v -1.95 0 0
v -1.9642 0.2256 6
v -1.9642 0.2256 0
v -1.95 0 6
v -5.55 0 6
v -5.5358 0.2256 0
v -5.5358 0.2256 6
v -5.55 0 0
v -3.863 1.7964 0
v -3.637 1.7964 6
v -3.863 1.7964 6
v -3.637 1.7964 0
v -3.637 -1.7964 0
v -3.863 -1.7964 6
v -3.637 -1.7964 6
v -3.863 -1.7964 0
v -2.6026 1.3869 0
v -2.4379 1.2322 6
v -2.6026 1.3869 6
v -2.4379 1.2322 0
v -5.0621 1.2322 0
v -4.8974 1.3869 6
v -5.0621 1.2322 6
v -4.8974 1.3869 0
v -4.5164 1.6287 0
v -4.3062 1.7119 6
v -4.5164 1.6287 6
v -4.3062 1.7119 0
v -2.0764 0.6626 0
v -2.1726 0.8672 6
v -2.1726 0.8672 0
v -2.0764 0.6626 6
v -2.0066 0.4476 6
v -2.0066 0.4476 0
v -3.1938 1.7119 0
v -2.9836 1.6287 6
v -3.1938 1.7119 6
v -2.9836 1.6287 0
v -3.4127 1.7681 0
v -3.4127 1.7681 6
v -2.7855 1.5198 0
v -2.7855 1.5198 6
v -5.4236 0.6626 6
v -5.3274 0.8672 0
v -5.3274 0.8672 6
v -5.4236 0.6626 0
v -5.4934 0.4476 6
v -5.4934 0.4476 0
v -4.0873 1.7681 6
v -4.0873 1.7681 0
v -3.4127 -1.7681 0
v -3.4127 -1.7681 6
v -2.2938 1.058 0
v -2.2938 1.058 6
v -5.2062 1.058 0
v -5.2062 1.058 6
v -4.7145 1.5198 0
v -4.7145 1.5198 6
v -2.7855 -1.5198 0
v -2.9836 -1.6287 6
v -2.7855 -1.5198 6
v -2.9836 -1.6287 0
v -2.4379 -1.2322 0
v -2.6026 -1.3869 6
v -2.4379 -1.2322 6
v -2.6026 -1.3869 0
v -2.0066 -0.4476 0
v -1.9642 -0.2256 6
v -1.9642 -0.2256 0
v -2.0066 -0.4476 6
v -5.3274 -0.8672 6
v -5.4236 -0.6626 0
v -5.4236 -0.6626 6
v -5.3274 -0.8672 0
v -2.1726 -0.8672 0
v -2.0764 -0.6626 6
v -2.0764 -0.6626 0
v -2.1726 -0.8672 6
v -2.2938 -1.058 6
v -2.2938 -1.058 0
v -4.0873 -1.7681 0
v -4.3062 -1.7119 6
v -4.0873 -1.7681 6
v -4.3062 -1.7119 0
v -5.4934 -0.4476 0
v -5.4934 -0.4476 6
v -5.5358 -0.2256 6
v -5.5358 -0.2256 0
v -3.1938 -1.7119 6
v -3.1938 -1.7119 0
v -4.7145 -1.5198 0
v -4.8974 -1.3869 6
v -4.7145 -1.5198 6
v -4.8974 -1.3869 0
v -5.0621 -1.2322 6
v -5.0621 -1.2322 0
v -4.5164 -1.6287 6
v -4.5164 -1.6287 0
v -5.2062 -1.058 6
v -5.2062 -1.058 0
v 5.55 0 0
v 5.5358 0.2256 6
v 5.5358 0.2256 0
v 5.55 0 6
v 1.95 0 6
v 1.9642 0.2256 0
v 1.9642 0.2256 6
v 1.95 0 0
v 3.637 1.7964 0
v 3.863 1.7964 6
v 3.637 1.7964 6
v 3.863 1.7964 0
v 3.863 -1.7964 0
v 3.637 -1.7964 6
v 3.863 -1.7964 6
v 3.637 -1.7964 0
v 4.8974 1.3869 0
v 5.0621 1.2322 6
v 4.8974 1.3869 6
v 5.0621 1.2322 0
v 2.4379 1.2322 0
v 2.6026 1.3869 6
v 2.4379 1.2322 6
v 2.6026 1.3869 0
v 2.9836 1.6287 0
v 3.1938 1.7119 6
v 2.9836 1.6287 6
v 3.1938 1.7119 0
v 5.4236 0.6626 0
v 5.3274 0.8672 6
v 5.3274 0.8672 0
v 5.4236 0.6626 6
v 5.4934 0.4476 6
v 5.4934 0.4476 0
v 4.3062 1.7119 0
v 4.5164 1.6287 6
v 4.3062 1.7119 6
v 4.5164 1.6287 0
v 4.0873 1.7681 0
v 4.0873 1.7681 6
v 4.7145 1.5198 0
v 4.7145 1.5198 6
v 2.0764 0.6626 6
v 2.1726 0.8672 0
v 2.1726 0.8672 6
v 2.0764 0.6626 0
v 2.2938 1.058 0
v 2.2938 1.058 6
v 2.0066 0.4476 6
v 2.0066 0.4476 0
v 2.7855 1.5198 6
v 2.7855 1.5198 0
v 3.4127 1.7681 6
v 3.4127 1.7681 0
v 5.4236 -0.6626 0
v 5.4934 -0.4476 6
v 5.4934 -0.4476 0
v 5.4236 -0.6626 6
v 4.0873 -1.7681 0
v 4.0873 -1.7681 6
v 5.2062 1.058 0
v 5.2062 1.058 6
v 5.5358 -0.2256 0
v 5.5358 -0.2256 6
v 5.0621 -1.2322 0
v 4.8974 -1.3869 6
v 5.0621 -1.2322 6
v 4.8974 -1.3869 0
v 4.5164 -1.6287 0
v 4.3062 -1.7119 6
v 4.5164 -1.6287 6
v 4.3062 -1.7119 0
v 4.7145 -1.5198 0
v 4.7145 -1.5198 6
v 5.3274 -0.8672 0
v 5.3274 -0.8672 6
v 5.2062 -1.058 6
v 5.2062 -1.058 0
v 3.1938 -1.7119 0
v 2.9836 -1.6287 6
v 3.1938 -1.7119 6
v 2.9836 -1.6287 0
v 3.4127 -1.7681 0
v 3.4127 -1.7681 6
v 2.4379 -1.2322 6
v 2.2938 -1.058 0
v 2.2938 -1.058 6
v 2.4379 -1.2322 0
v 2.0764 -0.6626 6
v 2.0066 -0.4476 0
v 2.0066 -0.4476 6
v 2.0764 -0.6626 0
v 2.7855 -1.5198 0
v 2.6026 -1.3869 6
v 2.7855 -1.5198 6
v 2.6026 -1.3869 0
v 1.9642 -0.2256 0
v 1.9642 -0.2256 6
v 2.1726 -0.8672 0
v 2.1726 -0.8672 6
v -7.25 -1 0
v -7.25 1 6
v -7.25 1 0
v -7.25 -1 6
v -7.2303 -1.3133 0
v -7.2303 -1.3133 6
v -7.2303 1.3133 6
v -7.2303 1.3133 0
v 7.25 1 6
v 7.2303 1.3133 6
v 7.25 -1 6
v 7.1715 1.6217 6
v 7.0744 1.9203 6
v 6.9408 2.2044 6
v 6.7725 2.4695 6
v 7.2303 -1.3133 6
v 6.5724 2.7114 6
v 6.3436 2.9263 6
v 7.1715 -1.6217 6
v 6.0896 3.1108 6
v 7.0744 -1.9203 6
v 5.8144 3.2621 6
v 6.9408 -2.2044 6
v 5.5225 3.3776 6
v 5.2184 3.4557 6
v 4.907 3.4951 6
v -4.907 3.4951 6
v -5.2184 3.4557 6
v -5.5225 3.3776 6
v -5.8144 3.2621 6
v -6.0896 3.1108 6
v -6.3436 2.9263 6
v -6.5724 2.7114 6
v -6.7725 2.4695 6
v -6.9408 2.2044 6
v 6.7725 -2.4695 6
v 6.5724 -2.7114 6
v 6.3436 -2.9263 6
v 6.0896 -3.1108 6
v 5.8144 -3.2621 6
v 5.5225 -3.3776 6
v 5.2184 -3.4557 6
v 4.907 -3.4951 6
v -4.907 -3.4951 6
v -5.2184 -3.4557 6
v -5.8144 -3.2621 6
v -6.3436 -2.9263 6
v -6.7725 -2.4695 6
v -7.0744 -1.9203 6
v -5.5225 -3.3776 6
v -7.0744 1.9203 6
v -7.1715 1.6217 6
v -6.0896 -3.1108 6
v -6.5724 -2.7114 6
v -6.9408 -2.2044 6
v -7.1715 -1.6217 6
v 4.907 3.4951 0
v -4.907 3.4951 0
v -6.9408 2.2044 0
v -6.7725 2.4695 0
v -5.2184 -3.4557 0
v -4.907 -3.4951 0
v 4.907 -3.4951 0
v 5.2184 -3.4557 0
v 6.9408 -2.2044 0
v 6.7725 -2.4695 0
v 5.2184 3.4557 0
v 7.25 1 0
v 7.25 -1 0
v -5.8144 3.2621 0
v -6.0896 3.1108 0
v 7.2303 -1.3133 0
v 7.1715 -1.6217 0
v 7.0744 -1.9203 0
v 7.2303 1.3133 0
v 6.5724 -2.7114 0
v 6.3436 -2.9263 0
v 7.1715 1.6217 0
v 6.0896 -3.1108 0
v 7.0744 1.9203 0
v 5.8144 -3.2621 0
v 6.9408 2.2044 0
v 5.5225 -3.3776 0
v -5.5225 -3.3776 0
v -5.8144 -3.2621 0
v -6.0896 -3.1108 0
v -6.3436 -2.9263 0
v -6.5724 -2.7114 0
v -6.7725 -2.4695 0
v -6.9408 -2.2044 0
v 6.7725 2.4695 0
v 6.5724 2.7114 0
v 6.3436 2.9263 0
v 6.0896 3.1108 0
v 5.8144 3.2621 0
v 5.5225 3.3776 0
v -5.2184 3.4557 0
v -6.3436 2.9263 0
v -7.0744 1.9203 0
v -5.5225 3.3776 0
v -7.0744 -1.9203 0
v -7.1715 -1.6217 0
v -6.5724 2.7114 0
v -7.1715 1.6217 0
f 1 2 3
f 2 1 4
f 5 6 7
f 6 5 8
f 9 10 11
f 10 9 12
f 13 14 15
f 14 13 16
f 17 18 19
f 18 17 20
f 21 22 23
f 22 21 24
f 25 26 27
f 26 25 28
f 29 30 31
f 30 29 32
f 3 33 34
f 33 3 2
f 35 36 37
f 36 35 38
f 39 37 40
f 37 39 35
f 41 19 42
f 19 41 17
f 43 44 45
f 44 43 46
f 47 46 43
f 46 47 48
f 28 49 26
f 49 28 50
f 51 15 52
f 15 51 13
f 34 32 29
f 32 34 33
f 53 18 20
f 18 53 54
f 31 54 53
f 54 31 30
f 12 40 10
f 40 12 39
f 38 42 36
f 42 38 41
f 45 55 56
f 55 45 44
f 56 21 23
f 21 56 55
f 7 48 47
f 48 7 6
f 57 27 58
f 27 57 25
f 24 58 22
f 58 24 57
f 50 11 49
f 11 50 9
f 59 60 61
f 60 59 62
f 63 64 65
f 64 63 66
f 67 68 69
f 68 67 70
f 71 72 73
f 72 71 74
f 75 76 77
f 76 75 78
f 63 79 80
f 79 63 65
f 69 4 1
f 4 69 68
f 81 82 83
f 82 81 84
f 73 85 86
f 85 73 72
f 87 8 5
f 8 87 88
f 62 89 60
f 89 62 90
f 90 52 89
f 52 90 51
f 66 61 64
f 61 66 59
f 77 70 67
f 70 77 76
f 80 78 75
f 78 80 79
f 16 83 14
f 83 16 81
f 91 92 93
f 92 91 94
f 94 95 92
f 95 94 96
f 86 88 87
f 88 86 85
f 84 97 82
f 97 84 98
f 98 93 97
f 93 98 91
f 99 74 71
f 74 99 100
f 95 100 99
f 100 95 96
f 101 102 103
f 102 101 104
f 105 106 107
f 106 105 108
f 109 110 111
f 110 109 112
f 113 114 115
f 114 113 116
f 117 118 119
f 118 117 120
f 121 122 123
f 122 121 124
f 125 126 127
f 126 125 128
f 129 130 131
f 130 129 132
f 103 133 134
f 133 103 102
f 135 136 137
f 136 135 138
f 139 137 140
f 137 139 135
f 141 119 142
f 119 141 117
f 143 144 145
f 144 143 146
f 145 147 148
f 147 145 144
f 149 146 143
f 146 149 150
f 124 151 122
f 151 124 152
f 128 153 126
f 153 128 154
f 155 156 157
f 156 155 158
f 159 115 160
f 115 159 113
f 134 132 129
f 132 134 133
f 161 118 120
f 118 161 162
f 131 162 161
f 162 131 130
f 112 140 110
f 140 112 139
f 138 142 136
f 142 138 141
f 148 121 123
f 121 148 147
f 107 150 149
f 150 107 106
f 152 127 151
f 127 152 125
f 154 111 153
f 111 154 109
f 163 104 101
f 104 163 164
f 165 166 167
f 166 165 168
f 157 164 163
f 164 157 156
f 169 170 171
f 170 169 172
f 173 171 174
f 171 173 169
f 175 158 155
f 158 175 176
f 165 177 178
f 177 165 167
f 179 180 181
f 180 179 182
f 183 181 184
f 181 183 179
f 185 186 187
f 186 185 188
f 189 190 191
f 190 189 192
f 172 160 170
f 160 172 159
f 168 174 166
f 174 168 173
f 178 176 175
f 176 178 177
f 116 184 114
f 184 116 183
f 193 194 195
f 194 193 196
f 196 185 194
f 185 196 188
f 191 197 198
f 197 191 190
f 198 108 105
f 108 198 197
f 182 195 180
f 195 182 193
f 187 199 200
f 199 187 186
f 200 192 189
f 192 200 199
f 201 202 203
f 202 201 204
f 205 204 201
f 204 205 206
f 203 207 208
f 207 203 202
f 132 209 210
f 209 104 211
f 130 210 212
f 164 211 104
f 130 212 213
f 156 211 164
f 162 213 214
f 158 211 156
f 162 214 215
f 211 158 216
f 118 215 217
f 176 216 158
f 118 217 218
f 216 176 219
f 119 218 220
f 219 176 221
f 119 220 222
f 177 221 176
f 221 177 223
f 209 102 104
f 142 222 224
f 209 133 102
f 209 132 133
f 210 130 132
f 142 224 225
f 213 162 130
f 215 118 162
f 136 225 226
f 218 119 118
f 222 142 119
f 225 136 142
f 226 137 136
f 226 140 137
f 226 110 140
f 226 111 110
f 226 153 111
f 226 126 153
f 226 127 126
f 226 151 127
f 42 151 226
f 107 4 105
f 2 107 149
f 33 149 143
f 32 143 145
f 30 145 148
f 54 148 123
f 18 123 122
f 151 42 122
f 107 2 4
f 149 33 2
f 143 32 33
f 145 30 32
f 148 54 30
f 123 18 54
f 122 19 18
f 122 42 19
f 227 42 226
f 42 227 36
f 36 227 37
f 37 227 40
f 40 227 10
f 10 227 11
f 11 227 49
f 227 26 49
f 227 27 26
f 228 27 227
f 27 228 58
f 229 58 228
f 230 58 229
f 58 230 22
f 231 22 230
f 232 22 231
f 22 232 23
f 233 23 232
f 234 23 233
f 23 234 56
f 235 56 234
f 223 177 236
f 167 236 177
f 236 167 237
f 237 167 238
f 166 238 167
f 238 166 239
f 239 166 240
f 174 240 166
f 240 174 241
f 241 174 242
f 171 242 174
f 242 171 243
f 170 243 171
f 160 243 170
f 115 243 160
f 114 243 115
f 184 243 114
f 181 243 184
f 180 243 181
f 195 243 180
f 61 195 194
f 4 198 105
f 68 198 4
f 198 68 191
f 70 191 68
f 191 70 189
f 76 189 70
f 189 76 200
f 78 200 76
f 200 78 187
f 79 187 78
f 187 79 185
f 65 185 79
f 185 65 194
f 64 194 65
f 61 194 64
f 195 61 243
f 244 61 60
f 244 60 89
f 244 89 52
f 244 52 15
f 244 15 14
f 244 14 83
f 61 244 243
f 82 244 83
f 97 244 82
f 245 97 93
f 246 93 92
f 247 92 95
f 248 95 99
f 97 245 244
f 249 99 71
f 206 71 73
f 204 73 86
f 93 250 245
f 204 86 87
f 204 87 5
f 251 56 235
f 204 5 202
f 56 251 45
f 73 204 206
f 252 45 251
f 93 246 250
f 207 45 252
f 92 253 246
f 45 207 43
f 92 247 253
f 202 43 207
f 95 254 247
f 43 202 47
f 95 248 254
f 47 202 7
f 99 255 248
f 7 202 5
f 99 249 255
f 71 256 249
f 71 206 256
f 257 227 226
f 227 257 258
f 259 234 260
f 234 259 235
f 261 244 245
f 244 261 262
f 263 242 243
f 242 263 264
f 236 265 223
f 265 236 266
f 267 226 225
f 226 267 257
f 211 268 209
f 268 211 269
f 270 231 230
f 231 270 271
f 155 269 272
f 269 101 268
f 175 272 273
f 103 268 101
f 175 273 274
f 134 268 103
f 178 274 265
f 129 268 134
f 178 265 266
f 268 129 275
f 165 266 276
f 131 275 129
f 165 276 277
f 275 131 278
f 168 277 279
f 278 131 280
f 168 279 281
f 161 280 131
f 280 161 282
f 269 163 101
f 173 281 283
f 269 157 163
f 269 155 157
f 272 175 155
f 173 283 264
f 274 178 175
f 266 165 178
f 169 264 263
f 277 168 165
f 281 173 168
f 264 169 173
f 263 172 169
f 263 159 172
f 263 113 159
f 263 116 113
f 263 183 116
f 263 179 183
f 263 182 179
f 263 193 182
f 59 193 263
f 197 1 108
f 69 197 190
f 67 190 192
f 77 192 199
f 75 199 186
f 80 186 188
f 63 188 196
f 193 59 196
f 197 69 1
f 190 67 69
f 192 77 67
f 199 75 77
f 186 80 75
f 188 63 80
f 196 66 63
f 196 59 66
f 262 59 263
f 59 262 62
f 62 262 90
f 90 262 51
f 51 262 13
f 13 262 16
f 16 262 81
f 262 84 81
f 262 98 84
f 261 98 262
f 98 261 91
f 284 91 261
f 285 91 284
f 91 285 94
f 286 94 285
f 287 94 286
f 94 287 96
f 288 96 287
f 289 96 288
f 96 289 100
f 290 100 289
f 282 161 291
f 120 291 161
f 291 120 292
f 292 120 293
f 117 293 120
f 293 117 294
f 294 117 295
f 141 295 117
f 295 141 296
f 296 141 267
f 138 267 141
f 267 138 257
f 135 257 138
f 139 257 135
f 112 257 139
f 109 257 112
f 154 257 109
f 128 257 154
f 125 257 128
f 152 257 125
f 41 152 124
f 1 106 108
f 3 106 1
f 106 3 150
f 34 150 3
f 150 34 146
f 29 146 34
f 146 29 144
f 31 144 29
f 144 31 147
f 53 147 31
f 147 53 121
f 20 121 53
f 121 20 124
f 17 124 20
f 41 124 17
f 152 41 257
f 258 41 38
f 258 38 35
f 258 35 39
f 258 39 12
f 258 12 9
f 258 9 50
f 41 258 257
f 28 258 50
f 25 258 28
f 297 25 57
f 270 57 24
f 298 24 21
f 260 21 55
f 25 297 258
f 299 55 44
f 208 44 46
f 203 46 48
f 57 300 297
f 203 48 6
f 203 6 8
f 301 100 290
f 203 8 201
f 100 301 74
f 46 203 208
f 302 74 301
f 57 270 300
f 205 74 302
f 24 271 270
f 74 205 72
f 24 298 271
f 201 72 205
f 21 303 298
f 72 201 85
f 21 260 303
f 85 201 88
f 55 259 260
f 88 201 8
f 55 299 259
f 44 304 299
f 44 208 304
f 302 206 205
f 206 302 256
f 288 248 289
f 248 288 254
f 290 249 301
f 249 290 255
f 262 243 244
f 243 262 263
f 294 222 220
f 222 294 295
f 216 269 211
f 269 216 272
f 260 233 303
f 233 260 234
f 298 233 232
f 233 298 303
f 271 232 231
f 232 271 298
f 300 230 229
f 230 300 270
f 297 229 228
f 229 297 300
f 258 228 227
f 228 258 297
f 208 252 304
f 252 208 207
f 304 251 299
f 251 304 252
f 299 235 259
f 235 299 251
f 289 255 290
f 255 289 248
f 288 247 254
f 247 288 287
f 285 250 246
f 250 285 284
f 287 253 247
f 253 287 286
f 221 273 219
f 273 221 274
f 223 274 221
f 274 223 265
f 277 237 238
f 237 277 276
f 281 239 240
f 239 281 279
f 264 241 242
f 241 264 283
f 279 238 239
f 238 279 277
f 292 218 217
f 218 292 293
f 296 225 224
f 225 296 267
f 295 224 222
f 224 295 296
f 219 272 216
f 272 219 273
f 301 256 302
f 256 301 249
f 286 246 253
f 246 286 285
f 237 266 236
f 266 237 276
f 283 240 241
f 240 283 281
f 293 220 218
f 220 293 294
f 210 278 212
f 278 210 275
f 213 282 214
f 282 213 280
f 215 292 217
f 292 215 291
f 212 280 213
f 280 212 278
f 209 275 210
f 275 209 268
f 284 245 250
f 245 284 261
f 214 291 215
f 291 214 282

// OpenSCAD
$fn = 50;


difference() {
	union() {
		translate(v = [0, 0, 0]) {
			rotate(a = [0, 0, 0]) {
				hull() {
					translate(v = [-4.7500000000, 1.0000000000, 0]) {
						rotate(a = [0, 0, 0]) {
							translate(v = [0, 0, 0]) {
								rotate(a = [0, 0, 0]) {
									cylinder(h = 6, r = 2.5000000000);
								}
							}
						}
					}
					translate(v = [4.7500000000, 1.0000000000, 0]) {
						rotate(a = [0, 0, 0]) {
							translate(v = [0, 0, 0]) {
								rotate(a = [0, 0, 0]) {
									cylinder(h = 6, r = 2.5000000000);
								}
							}
						}
					}
					translate(v = [-4.7500000000, -1.0000000000, 0]) {
						rotate(a = [0, 0, 0]) {
							translate(v = [0, 0, 0]) {
								rotate(a = [0, 0, 0]) {
									cylinder(h = 6, r = 2.5000000000);
								}
							}
						}
					}
					translate(v = [4.7500000000, -1.0000000000, 0]) {
						rotate(a = [0, 0, 0]) {
							translate(v = [0, 0, 0]) {
								rotate(a = [0, 0, 0]) {
									cylinder(h = 6, r = 2.5000000000);
								}
							}
						}
					}
				}
			}
		}
	}
	union() {
		translate(v = [-3.7500000000, 0.0000000000, 0]) {
			rotate(a = [0, 0, 0]) {
				translate(v = [0, 0, -50]) {
					rotate(a = [0, 0, 0]) {
						cylinder(h = 100, r = 1.8000000000);
					}
				}
			}
		}
		translate(v = [3.7500000000, 0.0000000000, 0]) {
			rotate(a = [0, 0, 0]) {
				translate(v = [0, 0, -50]) {
					rotate(a = [0, 0, 0]) {
						cylinder(h = 100, r = 1.8000000000);
					}
				}
			}
		}
	}
}
